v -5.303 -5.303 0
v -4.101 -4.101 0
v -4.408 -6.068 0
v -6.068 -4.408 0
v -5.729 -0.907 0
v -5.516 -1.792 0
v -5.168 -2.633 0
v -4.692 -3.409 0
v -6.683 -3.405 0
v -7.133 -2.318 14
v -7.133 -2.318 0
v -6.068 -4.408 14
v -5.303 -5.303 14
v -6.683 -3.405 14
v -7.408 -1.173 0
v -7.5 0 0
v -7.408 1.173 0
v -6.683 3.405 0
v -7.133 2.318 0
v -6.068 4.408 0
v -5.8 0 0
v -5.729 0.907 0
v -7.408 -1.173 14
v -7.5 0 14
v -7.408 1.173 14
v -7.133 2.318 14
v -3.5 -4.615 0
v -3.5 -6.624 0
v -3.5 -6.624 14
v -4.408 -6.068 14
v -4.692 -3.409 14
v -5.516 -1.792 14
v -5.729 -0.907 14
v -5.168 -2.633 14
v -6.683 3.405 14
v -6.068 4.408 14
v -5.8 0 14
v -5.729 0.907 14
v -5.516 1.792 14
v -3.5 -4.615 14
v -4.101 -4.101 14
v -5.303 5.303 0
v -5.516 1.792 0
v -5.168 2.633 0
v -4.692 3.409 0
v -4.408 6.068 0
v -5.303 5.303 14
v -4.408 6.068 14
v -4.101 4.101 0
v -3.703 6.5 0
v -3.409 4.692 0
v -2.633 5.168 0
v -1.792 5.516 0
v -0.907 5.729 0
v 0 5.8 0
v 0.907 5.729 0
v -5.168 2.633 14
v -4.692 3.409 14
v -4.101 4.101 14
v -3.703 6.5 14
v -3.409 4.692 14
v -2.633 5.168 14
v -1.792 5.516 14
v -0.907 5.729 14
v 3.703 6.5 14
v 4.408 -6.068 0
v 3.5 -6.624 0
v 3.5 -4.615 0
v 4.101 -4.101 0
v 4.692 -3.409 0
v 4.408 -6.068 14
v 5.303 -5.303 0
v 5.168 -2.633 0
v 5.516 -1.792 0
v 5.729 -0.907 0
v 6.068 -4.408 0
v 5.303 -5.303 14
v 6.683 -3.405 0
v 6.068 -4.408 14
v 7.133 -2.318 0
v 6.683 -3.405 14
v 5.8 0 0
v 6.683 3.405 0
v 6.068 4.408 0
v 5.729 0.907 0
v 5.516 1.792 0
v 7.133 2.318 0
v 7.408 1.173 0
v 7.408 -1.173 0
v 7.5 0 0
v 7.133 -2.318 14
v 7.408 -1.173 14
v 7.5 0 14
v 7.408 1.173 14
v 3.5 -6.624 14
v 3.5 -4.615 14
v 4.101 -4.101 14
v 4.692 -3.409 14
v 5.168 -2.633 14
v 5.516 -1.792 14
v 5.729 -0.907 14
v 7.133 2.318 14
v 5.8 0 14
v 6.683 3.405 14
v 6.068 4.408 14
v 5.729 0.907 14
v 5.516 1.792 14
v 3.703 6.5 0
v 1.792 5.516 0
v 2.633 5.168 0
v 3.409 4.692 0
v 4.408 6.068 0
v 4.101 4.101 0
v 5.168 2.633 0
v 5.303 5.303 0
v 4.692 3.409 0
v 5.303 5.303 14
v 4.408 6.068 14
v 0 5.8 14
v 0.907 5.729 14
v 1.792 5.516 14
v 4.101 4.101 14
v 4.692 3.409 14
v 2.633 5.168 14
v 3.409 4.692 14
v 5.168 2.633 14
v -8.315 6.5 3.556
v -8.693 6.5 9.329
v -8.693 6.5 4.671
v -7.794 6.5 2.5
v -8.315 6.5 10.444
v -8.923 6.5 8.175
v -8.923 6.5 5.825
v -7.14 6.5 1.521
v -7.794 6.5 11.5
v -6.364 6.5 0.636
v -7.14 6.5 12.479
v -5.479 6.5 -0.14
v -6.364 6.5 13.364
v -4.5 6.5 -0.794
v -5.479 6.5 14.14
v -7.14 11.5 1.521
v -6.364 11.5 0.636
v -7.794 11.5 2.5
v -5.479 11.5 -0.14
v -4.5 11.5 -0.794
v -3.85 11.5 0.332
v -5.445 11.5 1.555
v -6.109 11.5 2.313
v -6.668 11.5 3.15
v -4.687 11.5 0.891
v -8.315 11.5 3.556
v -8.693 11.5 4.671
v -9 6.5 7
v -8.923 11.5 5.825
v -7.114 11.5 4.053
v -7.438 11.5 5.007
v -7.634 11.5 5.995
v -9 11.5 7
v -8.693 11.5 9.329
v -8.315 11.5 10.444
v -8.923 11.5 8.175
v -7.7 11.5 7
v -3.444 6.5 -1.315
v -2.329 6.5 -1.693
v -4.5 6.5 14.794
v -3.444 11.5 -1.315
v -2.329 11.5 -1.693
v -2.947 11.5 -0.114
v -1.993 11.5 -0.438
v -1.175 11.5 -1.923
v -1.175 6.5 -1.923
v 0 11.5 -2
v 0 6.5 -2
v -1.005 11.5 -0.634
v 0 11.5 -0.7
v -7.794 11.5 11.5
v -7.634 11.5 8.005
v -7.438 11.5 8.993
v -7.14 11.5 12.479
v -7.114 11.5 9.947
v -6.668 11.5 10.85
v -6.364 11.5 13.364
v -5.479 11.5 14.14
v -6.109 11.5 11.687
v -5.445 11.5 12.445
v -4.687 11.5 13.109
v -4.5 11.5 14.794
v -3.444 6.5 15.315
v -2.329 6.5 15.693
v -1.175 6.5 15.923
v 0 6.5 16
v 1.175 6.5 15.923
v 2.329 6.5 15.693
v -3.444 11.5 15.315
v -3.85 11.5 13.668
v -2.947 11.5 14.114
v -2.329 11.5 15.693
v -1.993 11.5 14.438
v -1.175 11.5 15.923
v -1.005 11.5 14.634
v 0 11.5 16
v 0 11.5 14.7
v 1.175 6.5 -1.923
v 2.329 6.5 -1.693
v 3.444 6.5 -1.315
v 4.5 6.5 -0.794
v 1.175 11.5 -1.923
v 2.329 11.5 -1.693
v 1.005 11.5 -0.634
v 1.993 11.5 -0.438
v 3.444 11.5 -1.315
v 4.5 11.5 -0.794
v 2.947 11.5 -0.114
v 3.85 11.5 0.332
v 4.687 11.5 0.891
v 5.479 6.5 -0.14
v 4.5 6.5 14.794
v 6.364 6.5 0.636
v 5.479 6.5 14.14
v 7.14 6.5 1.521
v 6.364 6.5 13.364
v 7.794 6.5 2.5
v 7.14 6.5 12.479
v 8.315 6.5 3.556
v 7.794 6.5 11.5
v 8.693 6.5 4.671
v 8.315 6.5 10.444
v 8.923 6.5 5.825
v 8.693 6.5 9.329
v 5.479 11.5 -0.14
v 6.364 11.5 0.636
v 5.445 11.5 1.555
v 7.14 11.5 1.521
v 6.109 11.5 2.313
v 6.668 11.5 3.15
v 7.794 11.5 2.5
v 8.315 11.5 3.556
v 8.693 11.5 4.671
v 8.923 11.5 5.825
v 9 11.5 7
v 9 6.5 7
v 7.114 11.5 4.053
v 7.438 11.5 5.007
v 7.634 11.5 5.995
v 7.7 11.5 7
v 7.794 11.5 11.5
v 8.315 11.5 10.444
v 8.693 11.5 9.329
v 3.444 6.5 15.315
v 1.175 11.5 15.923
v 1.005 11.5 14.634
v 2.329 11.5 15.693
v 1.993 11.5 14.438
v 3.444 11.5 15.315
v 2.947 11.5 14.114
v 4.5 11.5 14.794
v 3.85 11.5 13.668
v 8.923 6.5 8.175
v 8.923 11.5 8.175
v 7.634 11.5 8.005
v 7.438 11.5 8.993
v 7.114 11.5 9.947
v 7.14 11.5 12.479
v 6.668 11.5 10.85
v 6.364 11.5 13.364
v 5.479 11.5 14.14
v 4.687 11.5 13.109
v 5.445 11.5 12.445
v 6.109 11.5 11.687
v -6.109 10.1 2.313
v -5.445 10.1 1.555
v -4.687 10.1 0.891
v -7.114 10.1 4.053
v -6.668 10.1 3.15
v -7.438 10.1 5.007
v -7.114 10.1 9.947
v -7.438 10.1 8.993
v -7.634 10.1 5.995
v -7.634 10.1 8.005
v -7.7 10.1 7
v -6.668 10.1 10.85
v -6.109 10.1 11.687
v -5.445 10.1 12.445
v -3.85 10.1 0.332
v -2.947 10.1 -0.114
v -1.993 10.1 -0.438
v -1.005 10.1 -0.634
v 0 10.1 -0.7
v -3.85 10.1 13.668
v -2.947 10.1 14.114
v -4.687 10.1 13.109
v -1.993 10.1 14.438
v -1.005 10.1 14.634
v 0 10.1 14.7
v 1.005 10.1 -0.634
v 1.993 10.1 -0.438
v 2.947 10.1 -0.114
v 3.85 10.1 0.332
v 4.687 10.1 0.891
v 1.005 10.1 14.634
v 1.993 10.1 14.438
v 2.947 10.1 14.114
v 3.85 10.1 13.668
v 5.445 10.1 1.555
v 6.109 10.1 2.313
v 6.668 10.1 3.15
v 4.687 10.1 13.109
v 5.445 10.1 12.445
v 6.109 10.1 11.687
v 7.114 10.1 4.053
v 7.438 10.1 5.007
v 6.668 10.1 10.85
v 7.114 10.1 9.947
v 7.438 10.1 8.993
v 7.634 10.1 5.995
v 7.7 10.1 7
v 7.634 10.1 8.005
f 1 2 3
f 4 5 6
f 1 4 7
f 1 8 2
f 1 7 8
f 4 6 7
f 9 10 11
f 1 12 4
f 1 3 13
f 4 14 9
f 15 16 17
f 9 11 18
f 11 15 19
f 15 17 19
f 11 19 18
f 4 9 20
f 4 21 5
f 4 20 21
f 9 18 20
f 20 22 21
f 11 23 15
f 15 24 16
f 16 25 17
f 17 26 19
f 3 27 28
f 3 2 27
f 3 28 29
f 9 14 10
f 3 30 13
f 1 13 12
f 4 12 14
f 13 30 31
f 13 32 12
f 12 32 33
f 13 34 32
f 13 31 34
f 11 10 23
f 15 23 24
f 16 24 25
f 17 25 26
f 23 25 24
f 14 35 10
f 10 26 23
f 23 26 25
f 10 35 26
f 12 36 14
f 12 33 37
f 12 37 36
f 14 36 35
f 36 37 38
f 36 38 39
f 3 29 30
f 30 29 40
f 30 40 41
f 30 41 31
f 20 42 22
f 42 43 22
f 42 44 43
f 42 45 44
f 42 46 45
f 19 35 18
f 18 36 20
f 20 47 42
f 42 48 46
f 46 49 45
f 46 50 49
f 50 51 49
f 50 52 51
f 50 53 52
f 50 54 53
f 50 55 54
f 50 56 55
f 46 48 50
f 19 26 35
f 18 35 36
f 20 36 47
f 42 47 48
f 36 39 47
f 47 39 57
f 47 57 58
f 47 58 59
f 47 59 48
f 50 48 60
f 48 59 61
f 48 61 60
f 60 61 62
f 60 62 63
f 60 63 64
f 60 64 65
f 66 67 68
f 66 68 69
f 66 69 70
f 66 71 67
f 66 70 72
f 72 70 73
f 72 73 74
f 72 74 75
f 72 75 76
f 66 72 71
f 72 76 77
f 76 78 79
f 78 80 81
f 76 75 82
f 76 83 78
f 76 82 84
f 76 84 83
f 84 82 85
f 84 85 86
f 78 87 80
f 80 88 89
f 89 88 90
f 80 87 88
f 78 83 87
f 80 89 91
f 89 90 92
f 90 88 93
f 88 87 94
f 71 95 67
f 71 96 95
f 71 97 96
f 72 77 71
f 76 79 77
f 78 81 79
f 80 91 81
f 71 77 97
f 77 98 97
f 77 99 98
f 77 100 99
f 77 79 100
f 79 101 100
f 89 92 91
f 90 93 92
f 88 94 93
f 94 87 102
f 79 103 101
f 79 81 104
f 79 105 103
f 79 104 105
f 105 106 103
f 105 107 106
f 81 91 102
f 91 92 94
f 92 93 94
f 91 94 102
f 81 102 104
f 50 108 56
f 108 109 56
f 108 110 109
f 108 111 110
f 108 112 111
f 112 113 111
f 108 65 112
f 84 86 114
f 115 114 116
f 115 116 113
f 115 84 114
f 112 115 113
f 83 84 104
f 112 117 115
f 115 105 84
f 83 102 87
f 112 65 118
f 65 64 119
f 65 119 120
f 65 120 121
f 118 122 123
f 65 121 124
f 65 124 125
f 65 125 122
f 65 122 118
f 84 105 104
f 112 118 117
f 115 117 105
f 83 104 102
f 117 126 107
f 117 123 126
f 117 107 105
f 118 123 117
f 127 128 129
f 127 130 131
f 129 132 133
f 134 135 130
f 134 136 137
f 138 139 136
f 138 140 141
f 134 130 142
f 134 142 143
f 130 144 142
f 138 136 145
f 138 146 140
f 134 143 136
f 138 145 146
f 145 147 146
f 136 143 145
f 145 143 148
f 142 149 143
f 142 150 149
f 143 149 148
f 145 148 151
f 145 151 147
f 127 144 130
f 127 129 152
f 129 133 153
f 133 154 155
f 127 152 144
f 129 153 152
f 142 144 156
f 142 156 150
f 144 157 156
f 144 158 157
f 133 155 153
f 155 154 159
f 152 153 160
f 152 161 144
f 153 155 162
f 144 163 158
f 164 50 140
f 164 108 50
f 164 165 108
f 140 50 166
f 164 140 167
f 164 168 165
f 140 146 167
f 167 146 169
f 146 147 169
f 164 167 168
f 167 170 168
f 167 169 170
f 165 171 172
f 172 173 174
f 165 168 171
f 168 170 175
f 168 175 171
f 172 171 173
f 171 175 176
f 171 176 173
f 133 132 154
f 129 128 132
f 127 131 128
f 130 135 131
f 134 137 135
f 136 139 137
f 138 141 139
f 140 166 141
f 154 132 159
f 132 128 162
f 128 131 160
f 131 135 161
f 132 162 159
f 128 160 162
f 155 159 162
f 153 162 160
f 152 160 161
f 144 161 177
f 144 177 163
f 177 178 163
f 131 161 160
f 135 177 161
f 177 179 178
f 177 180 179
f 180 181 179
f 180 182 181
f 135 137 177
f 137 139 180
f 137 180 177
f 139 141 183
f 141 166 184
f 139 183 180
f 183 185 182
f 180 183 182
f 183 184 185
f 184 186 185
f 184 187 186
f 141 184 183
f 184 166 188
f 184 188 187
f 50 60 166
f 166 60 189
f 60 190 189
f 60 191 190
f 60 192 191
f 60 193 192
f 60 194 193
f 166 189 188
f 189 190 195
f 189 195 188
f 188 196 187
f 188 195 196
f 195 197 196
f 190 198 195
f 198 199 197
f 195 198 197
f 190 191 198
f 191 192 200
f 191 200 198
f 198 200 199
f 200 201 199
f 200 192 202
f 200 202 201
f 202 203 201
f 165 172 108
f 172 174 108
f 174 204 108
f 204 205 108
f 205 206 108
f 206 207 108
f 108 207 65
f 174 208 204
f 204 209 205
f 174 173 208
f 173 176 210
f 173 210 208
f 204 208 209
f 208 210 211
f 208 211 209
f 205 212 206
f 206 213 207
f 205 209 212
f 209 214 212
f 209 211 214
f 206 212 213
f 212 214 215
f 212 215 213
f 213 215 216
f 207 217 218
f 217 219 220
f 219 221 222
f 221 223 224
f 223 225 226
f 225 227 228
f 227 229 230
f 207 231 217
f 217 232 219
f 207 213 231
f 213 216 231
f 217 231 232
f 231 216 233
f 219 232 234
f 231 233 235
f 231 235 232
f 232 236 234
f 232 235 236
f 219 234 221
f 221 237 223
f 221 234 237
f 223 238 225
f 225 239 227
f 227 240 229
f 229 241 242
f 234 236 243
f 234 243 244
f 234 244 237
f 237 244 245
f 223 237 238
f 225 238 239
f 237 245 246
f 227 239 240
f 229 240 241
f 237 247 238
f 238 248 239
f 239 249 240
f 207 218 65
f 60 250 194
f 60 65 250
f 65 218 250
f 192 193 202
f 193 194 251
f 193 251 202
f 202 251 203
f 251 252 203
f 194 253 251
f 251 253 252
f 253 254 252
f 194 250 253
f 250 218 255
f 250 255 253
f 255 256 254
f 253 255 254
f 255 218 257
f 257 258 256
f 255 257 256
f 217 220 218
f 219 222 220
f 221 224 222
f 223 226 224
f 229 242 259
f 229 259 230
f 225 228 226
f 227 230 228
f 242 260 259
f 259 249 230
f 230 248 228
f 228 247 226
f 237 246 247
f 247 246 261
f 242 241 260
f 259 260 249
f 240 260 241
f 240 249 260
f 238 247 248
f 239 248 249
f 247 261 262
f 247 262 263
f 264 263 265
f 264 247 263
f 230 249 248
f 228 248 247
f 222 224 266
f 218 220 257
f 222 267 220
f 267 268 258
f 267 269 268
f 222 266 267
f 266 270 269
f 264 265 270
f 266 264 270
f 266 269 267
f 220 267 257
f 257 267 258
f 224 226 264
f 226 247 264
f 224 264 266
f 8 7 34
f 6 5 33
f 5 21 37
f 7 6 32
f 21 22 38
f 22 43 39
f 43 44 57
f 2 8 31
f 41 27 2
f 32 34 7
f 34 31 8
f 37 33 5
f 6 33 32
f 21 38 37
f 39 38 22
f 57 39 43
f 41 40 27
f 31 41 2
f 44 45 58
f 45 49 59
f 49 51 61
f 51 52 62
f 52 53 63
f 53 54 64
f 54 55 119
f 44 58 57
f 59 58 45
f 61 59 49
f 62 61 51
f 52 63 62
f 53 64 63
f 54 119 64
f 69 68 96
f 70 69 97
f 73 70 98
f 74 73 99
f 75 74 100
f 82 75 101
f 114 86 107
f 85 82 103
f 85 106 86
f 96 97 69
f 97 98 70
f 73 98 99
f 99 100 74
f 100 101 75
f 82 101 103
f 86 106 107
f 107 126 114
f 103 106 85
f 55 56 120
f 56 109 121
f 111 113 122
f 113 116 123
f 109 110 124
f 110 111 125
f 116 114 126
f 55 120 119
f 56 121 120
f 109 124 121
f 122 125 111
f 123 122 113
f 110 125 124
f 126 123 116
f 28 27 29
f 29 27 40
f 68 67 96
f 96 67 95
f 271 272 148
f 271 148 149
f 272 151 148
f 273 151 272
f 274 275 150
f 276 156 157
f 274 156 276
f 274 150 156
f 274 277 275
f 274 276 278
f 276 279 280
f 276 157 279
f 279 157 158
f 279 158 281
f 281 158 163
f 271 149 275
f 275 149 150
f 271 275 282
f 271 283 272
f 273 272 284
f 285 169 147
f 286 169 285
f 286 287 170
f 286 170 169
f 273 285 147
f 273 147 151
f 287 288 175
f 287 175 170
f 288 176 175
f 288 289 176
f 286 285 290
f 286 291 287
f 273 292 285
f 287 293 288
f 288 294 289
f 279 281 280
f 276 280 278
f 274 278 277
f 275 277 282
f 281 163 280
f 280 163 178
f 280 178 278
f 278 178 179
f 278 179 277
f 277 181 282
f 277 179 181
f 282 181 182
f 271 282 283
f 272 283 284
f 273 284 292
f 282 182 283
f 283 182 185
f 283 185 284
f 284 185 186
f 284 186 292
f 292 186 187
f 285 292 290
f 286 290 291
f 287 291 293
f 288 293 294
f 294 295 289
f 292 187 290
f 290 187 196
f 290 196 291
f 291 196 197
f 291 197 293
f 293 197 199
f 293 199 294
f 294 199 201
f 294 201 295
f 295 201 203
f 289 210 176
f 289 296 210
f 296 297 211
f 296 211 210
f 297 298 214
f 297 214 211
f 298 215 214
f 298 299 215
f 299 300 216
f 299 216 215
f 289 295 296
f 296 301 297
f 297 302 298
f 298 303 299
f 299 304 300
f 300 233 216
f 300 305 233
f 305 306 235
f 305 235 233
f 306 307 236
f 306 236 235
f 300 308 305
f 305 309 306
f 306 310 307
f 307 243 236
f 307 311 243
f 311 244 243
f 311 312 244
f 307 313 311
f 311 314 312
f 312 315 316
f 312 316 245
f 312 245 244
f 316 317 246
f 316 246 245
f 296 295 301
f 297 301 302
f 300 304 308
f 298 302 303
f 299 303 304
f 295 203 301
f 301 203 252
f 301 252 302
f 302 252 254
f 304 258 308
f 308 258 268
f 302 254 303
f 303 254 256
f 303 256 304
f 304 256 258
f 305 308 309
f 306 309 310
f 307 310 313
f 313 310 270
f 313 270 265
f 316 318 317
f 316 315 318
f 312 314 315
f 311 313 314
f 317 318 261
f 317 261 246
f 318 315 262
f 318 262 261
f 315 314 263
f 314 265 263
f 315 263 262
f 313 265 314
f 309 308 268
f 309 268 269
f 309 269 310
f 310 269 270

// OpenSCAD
// H18a_umb_collar  (qty 1; frame: local; MJF PA12 or PETG)
// GENERATED by gen_halo_stl.py from halo_parts.py. Change numbers in halo_params.scad.
// Every dimension below is an expression of the names in halo_params.scad.
include <../halo_params.scad>

difference() {
    union() {
        cylinder(h = 14, r = 7.5, center = false, $fn = 40);
        translate([0, 6.5, 7]) {
            rotate([-90, 0, 0]) {
                cylinder(h = 5, r = 9, center = false, $fn = 48);
            }
        }
    }
    translate([0, 0, -1]) {
        cylinder(h = 16, r = 5.8, center = false, $fn = 40);
    }
    translate([-3.5, -10, -1]) {
        cube([7, 6, 16], center = false);
    }
    translate([0, 10.1, 7]) {
        rotate([-90, 0, 0]) {
            cylinder(h = 1.5, r = 7.7, center = false, $fn = 48);
        }
    }
}
